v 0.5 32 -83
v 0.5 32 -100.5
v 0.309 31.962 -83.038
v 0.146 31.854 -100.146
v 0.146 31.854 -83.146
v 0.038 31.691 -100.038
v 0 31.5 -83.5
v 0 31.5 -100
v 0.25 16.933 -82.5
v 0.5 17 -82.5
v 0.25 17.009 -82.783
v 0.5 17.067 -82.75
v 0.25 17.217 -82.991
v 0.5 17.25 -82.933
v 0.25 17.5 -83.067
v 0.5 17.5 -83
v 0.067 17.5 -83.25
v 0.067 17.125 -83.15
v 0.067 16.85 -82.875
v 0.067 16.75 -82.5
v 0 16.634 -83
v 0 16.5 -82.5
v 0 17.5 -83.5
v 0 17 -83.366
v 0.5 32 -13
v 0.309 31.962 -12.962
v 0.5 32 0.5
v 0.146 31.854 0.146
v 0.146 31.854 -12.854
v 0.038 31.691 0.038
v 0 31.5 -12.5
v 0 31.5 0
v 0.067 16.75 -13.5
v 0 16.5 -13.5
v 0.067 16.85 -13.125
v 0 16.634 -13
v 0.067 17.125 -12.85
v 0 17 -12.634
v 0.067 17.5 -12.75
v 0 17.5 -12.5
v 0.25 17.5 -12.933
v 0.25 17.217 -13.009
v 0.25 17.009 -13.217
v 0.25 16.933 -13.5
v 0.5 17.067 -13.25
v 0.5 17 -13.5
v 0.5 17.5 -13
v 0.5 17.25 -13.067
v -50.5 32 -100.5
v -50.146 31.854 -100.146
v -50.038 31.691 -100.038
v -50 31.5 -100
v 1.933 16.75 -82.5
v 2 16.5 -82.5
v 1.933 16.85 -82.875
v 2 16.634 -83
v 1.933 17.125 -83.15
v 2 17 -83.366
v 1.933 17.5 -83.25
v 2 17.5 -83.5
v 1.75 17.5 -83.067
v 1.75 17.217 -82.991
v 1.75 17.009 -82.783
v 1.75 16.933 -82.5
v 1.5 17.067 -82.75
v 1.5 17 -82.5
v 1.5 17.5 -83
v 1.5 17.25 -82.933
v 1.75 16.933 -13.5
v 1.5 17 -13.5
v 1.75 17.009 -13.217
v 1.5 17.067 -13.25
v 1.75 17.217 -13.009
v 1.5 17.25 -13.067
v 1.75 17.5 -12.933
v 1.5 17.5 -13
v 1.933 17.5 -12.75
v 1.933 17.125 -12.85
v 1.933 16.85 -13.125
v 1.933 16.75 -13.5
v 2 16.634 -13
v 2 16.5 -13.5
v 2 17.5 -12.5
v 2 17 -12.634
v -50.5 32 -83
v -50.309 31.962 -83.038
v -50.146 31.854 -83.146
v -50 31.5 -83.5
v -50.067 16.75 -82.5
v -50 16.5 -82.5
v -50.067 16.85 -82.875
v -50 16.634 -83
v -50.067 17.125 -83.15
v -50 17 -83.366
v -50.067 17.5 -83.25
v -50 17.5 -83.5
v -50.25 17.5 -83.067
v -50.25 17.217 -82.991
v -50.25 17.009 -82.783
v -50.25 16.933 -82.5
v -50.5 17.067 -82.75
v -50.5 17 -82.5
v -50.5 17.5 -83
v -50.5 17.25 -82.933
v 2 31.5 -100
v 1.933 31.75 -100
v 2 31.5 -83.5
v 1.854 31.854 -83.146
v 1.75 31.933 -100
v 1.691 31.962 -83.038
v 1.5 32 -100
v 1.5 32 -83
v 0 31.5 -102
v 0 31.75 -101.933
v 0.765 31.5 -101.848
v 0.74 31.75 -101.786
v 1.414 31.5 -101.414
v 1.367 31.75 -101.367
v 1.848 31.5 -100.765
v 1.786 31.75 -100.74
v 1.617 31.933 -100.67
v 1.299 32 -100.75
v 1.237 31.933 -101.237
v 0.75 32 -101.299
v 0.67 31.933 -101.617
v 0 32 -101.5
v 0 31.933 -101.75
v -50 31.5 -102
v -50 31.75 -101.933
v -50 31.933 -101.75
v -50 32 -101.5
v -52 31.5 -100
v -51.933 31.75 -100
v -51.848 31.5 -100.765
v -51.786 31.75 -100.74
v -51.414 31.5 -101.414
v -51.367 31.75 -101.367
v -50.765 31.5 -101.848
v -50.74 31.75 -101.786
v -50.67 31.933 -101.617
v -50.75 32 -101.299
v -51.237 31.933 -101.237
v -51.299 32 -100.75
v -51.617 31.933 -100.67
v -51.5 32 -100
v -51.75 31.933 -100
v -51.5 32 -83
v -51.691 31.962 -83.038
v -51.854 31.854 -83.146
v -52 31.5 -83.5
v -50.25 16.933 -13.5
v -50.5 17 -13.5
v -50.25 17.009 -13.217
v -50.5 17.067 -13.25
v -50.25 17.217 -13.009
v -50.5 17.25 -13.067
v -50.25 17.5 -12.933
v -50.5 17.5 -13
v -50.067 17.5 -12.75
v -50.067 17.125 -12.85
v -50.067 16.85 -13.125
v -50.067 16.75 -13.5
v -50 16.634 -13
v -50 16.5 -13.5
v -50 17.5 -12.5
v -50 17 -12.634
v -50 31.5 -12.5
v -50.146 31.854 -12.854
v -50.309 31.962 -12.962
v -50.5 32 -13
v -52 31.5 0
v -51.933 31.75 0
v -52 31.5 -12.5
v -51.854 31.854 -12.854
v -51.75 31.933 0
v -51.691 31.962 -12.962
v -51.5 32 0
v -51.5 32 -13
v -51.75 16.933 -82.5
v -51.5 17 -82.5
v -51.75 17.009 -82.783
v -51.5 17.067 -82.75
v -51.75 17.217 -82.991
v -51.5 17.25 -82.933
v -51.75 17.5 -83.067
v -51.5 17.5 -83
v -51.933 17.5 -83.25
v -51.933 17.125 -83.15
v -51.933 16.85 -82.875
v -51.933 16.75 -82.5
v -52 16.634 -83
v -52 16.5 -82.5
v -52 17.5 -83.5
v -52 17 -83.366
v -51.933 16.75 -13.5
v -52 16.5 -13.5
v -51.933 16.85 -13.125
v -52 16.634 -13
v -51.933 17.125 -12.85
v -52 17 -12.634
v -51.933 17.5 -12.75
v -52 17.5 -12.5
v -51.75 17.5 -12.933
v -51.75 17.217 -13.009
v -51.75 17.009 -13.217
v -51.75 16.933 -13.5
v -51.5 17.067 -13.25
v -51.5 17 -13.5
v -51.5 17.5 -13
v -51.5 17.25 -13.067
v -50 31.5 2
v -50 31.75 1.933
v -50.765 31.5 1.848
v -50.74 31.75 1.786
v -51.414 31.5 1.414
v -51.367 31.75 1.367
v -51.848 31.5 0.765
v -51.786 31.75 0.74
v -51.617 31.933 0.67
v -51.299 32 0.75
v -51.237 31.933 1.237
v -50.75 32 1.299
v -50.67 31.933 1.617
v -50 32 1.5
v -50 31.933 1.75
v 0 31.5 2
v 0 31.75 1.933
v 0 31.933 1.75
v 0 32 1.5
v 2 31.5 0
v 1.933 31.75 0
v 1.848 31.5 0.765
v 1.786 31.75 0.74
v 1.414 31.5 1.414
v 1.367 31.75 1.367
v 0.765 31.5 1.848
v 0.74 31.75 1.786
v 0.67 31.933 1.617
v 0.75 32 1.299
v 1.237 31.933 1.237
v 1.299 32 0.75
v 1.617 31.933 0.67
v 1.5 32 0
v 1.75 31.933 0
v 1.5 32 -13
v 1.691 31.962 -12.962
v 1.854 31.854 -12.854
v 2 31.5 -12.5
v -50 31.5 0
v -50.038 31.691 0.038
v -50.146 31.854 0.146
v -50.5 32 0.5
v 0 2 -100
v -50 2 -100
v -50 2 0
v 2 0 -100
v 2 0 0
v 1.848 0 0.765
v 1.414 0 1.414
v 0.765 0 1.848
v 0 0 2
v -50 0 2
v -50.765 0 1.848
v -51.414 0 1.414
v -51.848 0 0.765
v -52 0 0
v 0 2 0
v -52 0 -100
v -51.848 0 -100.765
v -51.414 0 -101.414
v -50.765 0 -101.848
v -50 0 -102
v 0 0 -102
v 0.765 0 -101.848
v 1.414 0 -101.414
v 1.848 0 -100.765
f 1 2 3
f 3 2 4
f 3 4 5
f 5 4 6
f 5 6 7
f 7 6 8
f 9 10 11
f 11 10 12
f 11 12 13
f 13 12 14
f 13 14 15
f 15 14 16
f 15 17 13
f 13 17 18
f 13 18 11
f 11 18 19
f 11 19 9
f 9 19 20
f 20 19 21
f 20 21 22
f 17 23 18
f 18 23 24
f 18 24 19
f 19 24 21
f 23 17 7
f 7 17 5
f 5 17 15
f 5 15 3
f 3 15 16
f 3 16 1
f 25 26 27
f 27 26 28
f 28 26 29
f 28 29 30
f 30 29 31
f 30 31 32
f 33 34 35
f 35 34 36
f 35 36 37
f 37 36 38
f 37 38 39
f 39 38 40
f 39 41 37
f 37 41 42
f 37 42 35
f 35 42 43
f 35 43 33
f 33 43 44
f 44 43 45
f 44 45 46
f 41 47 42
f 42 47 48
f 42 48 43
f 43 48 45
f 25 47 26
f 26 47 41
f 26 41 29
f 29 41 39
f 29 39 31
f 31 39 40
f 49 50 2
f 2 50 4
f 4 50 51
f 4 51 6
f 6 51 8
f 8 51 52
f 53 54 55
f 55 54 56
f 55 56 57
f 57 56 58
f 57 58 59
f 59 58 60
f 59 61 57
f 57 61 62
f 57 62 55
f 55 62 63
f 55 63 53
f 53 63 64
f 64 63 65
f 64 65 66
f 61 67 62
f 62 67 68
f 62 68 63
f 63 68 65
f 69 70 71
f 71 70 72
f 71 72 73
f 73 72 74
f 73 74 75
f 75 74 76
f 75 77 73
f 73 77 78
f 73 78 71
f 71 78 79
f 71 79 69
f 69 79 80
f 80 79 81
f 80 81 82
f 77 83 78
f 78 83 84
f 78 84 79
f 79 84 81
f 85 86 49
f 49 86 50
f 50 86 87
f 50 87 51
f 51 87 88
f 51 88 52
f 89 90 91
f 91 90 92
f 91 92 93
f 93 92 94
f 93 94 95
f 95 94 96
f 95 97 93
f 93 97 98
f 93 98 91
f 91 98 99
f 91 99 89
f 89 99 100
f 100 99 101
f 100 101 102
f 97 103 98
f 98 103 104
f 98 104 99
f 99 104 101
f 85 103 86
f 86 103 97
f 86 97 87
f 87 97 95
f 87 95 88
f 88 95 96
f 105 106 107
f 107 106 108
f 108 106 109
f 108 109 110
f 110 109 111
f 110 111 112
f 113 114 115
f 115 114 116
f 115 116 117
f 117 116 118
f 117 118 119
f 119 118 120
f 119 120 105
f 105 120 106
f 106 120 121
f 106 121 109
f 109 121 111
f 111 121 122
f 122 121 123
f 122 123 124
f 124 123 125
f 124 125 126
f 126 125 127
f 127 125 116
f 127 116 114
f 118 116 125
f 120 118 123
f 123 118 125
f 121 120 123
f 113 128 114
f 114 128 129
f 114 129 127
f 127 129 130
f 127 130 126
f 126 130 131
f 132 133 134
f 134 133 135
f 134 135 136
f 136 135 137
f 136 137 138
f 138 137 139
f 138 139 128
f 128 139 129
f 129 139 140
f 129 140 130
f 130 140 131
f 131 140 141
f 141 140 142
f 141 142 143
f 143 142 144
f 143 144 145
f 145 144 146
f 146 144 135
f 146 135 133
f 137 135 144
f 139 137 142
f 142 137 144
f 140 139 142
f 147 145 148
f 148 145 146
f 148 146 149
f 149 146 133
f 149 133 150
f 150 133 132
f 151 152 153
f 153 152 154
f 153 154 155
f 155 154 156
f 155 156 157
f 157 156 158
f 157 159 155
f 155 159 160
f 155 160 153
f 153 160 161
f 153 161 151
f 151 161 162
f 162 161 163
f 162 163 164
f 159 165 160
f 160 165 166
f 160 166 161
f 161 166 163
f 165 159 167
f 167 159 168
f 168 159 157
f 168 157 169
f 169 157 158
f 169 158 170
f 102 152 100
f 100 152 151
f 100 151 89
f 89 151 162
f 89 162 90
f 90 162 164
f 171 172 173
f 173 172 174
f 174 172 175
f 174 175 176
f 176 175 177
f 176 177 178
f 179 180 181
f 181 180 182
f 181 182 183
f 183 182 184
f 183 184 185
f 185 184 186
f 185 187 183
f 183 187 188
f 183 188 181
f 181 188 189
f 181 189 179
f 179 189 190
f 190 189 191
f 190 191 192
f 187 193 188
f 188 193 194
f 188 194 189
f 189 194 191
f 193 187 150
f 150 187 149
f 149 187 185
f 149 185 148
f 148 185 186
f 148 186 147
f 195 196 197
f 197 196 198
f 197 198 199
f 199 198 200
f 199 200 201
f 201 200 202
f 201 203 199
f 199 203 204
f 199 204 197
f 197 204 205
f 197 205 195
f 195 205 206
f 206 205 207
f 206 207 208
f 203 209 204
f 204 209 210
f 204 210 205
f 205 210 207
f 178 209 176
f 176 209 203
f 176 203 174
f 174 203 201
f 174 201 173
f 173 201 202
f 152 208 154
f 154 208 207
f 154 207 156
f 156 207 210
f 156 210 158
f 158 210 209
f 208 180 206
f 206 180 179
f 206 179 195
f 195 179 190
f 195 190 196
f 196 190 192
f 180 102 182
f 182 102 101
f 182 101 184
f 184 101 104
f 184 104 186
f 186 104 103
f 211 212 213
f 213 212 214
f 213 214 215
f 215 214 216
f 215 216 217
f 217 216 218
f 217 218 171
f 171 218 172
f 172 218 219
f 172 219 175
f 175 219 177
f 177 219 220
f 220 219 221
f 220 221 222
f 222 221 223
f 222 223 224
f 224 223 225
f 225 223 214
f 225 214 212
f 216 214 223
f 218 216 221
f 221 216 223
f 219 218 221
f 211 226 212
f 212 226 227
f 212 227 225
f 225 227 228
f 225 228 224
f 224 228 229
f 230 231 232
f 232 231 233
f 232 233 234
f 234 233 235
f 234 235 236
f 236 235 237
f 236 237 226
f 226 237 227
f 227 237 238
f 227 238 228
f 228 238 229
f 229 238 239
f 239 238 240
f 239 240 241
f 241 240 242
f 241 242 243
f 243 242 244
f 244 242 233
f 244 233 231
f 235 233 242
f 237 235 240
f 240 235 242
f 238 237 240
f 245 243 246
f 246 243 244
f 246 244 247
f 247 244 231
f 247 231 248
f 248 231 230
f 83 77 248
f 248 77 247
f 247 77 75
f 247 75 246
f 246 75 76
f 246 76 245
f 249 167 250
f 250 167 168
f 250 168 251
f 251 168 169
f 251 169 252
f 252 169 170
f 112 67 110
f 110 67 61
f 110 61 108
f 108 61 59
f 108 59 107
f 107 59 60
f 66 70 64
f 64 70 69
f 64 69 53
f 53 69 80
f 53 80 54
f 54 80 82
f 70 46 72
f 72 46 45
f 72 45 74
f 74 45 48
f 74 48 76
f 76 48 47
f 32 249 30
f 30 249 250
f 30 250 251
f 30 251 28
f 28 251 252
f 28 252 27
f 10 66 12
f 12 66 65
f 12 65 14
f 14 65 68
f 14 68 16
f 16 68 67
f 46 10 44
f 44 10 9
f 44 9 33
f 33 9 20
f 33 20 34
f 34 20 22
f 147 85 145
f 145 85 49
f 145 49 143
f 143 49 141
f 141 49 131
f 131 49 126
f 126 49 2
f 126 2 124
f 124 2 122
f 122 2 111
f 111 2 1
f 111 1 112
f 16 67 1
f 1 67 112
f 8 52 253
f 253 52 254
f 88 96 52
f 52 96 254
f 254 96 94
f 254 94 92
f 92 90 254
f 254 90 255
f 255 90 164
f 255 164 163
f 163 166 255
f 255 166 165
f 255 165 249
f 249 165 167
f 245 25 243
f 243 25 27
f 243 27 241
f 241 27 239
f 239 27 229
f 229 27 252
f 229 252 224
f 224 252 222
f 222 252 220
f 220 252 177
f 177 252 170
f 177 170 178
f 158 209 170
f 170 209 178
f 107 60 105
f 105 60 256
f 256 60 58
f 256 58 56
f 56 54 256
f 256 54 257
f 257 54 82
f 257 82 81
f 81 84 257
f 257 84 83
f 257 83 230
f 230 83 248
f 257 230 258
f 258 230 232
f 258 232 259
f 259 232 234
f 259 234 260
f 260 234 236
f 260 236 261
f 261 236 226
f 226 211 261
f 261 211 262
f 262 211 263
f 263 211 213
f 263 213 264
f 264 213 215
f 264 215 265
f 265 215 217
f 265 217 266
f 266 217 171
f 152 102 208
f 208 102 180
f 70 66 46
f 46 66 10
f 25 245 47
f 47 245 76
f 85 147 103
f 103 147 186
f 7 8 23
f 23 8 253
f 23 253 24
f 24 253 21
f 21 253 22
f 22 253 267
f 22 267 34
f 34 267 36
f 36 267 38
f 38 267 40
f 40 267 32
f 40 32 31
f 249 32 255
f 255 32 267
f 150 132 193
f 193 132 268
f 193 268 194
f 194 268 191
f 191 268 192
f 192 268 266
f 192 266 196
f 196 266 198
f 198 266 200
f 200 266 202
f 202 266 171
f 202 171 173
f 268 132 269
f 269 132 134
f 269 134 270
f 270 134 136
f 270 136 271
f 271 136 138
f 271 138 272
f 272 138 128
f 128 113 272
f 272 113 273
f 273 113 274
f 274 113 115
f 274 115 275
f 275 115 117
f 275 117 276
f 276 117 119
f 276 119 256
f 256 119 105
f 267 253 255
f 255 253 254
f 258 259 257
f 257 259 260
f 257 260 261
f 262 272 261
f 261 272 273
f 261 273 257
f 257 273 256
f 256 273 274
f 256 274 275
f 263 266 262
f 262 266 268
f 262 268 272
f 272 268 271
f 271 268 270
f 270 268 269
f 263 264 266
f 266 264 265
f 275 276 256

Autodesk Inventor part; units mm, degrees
ref_plane "YZ Plane" through (0, 0, 0) normal (1, 0, 0) x (0, 1, 0)
ref_plane "XZ Plane" through (0, 0, 0) normal (0, 1, 0) x (-1, 0, 0)
ref_plane "XY Plane" through (0, 0, 0) normal (0, 0, 1) x (1, 0, 0)
sketch "Sketch1" plane through (0, 0, 0) normal (0, 1, 0) x (-1, 0, 0)
  line L0 (50, 2) -> (0, 2)
  line L1 (-2, 0) -> (-2, -100)
  line L2 (0, -102) -> (50, -102)
  line L3 (52, -100) -> (52, 0)
  arc A0 (52, 0) -> (50, 2) centre (50, 0) ccw
  arc A1 (0, 2) -> (-2, 0) centre (0, 0) ccw
  arc A2 (-2, -100) -> (0, -102) centre (0, -100) ccw
  arc A3 (50, -102) -> (52, -100) centre (50, -100) ccw
  line L4 (50, 0) -> (0, 0)
  line L5 (0, 0) -> (0, -100)
  line L6 (0, -100) -> (50, -100)
  line L7 (50, -100) -> (50, 0)
  point P0 (0, 0)
  point P1 (50, -100)
  point P2 (50, 0)
  point P3 (0, -100)
  dimension "d0" = 50
  dimension "d1" = 100
  dimension "d7" = 2
  dimension "d8" = 100
  dimension "d9" = 2
  dimension "d10" = 2
  dimension "d11" = 2
  dimension "d12" = 2
  dimension "d13" = 50
extrude "Extrusion1" add sketch "Sketch1" along normal blind 2 contours A0 L3 A3 L2 A2 L1 A1 L0 | L7 L6 L5 L4
extrude "Extrusion2" add sketch "Sketch1" along normal blind 32
sketch "Sketch2" plane through (0, 32, 0) normal (0, 1, 0) x (1, 0, 0)
  arc A0 (0, -2) -> (2, 0) centre (0, 0) ccw projected
  line L0 (2, 0) -> (2, 100) projected
  arc A1 (2, 100) -> (0, 102) centre (0, 100) ccw projected
  line L1 (0, 102) -> (-50, 102) projected
  arc A2 (-50, 102) -> (-52, 100) centre (-50, 100) ccw projected
  line L2 (-52, 100) -> (-52, 0) projected
  arc A3 (-52, 0) -> (-50, -2) centre (-50, 0) ccw projected
  line L3 (-50, -2) -> (0, -2) projected
  line L4 (-50, 0) -> (-50, 100) projected
  line L5 (-50, 100) -> (0, 100) projected
  line L6 (0, 100) -> (0, 0) projected
  line L7 (0, 0) -> (-50, 0) projected
  line L8 (-50, 0) -> (0, 0) projected
  line L9 (0, 0) -> (0, 100) projected
  line L10 (0, 100) -> (-50, 100) projected
  line L11 (-50, 100) -> (-50, 0) projected
  line L12 (-52, 100) -> (-52, 0) projected
  line L13 (-52, 13) -> (-50, 13)
  line L14 (-50, 13) -> (-50, 83)
  line L15 (-50, 83) -> (-52, 83)
  line L16 (-52, 83) -> (-52, 13)
  line L17 (0, 13) -> (2, 13)
  line L18 (2, 13) -> (2, 83)
  line L19 (2, 83) -> (0, 83)
  line L20 (0, 83) -> (0, 13)
  point P0 (0, 0)
  point P1 (-52, 48)
  point P2 (0, 83)
  dimension "d18" = 2
  dimension "d19" = 70
  dimension "d20" = 50
extrude "Extrusion3" cut sketch "Sketch2" against normal blind 15 contours L17 L6 L19 L0 | L2 L15 L4 L13
fillet "Fillet1" radius 0.5 32 edges at (-52, 17, -48) (-50, 17, -48) (0, 17, -48) (2, 17, -48) (2, 24.5, -83) (0, 24.5, -83) (1, 17, -83) (1, 17, -13) (0, 24.5, -13) (2, 24.5, -13) (-50, 24.5, -83) (-52, 24.5, -83) (-51, 17, -83) (-50, 24.5, -13) (-52, 24.5, -13) (-51, 17, -13) (-50, 32, -91.5) (-51.4142, 32, -101.4142) (-25, 32, -102) (1.4142, 32, -101.4142) (2, 32, -91.5) (-52, 32, -91.5) (-25, 32, -100) (0, 32, -91.5) (1.4142, 32, 1.4142) (-25, 32, 2) (-51.4142, 32, 1.4142) (-52, 32, -6.5) (2, 32, -6.5) (0, 32, -6.5) (-25, 32, 0) (-50, 32, -6.5)
properties part number "connection box"
